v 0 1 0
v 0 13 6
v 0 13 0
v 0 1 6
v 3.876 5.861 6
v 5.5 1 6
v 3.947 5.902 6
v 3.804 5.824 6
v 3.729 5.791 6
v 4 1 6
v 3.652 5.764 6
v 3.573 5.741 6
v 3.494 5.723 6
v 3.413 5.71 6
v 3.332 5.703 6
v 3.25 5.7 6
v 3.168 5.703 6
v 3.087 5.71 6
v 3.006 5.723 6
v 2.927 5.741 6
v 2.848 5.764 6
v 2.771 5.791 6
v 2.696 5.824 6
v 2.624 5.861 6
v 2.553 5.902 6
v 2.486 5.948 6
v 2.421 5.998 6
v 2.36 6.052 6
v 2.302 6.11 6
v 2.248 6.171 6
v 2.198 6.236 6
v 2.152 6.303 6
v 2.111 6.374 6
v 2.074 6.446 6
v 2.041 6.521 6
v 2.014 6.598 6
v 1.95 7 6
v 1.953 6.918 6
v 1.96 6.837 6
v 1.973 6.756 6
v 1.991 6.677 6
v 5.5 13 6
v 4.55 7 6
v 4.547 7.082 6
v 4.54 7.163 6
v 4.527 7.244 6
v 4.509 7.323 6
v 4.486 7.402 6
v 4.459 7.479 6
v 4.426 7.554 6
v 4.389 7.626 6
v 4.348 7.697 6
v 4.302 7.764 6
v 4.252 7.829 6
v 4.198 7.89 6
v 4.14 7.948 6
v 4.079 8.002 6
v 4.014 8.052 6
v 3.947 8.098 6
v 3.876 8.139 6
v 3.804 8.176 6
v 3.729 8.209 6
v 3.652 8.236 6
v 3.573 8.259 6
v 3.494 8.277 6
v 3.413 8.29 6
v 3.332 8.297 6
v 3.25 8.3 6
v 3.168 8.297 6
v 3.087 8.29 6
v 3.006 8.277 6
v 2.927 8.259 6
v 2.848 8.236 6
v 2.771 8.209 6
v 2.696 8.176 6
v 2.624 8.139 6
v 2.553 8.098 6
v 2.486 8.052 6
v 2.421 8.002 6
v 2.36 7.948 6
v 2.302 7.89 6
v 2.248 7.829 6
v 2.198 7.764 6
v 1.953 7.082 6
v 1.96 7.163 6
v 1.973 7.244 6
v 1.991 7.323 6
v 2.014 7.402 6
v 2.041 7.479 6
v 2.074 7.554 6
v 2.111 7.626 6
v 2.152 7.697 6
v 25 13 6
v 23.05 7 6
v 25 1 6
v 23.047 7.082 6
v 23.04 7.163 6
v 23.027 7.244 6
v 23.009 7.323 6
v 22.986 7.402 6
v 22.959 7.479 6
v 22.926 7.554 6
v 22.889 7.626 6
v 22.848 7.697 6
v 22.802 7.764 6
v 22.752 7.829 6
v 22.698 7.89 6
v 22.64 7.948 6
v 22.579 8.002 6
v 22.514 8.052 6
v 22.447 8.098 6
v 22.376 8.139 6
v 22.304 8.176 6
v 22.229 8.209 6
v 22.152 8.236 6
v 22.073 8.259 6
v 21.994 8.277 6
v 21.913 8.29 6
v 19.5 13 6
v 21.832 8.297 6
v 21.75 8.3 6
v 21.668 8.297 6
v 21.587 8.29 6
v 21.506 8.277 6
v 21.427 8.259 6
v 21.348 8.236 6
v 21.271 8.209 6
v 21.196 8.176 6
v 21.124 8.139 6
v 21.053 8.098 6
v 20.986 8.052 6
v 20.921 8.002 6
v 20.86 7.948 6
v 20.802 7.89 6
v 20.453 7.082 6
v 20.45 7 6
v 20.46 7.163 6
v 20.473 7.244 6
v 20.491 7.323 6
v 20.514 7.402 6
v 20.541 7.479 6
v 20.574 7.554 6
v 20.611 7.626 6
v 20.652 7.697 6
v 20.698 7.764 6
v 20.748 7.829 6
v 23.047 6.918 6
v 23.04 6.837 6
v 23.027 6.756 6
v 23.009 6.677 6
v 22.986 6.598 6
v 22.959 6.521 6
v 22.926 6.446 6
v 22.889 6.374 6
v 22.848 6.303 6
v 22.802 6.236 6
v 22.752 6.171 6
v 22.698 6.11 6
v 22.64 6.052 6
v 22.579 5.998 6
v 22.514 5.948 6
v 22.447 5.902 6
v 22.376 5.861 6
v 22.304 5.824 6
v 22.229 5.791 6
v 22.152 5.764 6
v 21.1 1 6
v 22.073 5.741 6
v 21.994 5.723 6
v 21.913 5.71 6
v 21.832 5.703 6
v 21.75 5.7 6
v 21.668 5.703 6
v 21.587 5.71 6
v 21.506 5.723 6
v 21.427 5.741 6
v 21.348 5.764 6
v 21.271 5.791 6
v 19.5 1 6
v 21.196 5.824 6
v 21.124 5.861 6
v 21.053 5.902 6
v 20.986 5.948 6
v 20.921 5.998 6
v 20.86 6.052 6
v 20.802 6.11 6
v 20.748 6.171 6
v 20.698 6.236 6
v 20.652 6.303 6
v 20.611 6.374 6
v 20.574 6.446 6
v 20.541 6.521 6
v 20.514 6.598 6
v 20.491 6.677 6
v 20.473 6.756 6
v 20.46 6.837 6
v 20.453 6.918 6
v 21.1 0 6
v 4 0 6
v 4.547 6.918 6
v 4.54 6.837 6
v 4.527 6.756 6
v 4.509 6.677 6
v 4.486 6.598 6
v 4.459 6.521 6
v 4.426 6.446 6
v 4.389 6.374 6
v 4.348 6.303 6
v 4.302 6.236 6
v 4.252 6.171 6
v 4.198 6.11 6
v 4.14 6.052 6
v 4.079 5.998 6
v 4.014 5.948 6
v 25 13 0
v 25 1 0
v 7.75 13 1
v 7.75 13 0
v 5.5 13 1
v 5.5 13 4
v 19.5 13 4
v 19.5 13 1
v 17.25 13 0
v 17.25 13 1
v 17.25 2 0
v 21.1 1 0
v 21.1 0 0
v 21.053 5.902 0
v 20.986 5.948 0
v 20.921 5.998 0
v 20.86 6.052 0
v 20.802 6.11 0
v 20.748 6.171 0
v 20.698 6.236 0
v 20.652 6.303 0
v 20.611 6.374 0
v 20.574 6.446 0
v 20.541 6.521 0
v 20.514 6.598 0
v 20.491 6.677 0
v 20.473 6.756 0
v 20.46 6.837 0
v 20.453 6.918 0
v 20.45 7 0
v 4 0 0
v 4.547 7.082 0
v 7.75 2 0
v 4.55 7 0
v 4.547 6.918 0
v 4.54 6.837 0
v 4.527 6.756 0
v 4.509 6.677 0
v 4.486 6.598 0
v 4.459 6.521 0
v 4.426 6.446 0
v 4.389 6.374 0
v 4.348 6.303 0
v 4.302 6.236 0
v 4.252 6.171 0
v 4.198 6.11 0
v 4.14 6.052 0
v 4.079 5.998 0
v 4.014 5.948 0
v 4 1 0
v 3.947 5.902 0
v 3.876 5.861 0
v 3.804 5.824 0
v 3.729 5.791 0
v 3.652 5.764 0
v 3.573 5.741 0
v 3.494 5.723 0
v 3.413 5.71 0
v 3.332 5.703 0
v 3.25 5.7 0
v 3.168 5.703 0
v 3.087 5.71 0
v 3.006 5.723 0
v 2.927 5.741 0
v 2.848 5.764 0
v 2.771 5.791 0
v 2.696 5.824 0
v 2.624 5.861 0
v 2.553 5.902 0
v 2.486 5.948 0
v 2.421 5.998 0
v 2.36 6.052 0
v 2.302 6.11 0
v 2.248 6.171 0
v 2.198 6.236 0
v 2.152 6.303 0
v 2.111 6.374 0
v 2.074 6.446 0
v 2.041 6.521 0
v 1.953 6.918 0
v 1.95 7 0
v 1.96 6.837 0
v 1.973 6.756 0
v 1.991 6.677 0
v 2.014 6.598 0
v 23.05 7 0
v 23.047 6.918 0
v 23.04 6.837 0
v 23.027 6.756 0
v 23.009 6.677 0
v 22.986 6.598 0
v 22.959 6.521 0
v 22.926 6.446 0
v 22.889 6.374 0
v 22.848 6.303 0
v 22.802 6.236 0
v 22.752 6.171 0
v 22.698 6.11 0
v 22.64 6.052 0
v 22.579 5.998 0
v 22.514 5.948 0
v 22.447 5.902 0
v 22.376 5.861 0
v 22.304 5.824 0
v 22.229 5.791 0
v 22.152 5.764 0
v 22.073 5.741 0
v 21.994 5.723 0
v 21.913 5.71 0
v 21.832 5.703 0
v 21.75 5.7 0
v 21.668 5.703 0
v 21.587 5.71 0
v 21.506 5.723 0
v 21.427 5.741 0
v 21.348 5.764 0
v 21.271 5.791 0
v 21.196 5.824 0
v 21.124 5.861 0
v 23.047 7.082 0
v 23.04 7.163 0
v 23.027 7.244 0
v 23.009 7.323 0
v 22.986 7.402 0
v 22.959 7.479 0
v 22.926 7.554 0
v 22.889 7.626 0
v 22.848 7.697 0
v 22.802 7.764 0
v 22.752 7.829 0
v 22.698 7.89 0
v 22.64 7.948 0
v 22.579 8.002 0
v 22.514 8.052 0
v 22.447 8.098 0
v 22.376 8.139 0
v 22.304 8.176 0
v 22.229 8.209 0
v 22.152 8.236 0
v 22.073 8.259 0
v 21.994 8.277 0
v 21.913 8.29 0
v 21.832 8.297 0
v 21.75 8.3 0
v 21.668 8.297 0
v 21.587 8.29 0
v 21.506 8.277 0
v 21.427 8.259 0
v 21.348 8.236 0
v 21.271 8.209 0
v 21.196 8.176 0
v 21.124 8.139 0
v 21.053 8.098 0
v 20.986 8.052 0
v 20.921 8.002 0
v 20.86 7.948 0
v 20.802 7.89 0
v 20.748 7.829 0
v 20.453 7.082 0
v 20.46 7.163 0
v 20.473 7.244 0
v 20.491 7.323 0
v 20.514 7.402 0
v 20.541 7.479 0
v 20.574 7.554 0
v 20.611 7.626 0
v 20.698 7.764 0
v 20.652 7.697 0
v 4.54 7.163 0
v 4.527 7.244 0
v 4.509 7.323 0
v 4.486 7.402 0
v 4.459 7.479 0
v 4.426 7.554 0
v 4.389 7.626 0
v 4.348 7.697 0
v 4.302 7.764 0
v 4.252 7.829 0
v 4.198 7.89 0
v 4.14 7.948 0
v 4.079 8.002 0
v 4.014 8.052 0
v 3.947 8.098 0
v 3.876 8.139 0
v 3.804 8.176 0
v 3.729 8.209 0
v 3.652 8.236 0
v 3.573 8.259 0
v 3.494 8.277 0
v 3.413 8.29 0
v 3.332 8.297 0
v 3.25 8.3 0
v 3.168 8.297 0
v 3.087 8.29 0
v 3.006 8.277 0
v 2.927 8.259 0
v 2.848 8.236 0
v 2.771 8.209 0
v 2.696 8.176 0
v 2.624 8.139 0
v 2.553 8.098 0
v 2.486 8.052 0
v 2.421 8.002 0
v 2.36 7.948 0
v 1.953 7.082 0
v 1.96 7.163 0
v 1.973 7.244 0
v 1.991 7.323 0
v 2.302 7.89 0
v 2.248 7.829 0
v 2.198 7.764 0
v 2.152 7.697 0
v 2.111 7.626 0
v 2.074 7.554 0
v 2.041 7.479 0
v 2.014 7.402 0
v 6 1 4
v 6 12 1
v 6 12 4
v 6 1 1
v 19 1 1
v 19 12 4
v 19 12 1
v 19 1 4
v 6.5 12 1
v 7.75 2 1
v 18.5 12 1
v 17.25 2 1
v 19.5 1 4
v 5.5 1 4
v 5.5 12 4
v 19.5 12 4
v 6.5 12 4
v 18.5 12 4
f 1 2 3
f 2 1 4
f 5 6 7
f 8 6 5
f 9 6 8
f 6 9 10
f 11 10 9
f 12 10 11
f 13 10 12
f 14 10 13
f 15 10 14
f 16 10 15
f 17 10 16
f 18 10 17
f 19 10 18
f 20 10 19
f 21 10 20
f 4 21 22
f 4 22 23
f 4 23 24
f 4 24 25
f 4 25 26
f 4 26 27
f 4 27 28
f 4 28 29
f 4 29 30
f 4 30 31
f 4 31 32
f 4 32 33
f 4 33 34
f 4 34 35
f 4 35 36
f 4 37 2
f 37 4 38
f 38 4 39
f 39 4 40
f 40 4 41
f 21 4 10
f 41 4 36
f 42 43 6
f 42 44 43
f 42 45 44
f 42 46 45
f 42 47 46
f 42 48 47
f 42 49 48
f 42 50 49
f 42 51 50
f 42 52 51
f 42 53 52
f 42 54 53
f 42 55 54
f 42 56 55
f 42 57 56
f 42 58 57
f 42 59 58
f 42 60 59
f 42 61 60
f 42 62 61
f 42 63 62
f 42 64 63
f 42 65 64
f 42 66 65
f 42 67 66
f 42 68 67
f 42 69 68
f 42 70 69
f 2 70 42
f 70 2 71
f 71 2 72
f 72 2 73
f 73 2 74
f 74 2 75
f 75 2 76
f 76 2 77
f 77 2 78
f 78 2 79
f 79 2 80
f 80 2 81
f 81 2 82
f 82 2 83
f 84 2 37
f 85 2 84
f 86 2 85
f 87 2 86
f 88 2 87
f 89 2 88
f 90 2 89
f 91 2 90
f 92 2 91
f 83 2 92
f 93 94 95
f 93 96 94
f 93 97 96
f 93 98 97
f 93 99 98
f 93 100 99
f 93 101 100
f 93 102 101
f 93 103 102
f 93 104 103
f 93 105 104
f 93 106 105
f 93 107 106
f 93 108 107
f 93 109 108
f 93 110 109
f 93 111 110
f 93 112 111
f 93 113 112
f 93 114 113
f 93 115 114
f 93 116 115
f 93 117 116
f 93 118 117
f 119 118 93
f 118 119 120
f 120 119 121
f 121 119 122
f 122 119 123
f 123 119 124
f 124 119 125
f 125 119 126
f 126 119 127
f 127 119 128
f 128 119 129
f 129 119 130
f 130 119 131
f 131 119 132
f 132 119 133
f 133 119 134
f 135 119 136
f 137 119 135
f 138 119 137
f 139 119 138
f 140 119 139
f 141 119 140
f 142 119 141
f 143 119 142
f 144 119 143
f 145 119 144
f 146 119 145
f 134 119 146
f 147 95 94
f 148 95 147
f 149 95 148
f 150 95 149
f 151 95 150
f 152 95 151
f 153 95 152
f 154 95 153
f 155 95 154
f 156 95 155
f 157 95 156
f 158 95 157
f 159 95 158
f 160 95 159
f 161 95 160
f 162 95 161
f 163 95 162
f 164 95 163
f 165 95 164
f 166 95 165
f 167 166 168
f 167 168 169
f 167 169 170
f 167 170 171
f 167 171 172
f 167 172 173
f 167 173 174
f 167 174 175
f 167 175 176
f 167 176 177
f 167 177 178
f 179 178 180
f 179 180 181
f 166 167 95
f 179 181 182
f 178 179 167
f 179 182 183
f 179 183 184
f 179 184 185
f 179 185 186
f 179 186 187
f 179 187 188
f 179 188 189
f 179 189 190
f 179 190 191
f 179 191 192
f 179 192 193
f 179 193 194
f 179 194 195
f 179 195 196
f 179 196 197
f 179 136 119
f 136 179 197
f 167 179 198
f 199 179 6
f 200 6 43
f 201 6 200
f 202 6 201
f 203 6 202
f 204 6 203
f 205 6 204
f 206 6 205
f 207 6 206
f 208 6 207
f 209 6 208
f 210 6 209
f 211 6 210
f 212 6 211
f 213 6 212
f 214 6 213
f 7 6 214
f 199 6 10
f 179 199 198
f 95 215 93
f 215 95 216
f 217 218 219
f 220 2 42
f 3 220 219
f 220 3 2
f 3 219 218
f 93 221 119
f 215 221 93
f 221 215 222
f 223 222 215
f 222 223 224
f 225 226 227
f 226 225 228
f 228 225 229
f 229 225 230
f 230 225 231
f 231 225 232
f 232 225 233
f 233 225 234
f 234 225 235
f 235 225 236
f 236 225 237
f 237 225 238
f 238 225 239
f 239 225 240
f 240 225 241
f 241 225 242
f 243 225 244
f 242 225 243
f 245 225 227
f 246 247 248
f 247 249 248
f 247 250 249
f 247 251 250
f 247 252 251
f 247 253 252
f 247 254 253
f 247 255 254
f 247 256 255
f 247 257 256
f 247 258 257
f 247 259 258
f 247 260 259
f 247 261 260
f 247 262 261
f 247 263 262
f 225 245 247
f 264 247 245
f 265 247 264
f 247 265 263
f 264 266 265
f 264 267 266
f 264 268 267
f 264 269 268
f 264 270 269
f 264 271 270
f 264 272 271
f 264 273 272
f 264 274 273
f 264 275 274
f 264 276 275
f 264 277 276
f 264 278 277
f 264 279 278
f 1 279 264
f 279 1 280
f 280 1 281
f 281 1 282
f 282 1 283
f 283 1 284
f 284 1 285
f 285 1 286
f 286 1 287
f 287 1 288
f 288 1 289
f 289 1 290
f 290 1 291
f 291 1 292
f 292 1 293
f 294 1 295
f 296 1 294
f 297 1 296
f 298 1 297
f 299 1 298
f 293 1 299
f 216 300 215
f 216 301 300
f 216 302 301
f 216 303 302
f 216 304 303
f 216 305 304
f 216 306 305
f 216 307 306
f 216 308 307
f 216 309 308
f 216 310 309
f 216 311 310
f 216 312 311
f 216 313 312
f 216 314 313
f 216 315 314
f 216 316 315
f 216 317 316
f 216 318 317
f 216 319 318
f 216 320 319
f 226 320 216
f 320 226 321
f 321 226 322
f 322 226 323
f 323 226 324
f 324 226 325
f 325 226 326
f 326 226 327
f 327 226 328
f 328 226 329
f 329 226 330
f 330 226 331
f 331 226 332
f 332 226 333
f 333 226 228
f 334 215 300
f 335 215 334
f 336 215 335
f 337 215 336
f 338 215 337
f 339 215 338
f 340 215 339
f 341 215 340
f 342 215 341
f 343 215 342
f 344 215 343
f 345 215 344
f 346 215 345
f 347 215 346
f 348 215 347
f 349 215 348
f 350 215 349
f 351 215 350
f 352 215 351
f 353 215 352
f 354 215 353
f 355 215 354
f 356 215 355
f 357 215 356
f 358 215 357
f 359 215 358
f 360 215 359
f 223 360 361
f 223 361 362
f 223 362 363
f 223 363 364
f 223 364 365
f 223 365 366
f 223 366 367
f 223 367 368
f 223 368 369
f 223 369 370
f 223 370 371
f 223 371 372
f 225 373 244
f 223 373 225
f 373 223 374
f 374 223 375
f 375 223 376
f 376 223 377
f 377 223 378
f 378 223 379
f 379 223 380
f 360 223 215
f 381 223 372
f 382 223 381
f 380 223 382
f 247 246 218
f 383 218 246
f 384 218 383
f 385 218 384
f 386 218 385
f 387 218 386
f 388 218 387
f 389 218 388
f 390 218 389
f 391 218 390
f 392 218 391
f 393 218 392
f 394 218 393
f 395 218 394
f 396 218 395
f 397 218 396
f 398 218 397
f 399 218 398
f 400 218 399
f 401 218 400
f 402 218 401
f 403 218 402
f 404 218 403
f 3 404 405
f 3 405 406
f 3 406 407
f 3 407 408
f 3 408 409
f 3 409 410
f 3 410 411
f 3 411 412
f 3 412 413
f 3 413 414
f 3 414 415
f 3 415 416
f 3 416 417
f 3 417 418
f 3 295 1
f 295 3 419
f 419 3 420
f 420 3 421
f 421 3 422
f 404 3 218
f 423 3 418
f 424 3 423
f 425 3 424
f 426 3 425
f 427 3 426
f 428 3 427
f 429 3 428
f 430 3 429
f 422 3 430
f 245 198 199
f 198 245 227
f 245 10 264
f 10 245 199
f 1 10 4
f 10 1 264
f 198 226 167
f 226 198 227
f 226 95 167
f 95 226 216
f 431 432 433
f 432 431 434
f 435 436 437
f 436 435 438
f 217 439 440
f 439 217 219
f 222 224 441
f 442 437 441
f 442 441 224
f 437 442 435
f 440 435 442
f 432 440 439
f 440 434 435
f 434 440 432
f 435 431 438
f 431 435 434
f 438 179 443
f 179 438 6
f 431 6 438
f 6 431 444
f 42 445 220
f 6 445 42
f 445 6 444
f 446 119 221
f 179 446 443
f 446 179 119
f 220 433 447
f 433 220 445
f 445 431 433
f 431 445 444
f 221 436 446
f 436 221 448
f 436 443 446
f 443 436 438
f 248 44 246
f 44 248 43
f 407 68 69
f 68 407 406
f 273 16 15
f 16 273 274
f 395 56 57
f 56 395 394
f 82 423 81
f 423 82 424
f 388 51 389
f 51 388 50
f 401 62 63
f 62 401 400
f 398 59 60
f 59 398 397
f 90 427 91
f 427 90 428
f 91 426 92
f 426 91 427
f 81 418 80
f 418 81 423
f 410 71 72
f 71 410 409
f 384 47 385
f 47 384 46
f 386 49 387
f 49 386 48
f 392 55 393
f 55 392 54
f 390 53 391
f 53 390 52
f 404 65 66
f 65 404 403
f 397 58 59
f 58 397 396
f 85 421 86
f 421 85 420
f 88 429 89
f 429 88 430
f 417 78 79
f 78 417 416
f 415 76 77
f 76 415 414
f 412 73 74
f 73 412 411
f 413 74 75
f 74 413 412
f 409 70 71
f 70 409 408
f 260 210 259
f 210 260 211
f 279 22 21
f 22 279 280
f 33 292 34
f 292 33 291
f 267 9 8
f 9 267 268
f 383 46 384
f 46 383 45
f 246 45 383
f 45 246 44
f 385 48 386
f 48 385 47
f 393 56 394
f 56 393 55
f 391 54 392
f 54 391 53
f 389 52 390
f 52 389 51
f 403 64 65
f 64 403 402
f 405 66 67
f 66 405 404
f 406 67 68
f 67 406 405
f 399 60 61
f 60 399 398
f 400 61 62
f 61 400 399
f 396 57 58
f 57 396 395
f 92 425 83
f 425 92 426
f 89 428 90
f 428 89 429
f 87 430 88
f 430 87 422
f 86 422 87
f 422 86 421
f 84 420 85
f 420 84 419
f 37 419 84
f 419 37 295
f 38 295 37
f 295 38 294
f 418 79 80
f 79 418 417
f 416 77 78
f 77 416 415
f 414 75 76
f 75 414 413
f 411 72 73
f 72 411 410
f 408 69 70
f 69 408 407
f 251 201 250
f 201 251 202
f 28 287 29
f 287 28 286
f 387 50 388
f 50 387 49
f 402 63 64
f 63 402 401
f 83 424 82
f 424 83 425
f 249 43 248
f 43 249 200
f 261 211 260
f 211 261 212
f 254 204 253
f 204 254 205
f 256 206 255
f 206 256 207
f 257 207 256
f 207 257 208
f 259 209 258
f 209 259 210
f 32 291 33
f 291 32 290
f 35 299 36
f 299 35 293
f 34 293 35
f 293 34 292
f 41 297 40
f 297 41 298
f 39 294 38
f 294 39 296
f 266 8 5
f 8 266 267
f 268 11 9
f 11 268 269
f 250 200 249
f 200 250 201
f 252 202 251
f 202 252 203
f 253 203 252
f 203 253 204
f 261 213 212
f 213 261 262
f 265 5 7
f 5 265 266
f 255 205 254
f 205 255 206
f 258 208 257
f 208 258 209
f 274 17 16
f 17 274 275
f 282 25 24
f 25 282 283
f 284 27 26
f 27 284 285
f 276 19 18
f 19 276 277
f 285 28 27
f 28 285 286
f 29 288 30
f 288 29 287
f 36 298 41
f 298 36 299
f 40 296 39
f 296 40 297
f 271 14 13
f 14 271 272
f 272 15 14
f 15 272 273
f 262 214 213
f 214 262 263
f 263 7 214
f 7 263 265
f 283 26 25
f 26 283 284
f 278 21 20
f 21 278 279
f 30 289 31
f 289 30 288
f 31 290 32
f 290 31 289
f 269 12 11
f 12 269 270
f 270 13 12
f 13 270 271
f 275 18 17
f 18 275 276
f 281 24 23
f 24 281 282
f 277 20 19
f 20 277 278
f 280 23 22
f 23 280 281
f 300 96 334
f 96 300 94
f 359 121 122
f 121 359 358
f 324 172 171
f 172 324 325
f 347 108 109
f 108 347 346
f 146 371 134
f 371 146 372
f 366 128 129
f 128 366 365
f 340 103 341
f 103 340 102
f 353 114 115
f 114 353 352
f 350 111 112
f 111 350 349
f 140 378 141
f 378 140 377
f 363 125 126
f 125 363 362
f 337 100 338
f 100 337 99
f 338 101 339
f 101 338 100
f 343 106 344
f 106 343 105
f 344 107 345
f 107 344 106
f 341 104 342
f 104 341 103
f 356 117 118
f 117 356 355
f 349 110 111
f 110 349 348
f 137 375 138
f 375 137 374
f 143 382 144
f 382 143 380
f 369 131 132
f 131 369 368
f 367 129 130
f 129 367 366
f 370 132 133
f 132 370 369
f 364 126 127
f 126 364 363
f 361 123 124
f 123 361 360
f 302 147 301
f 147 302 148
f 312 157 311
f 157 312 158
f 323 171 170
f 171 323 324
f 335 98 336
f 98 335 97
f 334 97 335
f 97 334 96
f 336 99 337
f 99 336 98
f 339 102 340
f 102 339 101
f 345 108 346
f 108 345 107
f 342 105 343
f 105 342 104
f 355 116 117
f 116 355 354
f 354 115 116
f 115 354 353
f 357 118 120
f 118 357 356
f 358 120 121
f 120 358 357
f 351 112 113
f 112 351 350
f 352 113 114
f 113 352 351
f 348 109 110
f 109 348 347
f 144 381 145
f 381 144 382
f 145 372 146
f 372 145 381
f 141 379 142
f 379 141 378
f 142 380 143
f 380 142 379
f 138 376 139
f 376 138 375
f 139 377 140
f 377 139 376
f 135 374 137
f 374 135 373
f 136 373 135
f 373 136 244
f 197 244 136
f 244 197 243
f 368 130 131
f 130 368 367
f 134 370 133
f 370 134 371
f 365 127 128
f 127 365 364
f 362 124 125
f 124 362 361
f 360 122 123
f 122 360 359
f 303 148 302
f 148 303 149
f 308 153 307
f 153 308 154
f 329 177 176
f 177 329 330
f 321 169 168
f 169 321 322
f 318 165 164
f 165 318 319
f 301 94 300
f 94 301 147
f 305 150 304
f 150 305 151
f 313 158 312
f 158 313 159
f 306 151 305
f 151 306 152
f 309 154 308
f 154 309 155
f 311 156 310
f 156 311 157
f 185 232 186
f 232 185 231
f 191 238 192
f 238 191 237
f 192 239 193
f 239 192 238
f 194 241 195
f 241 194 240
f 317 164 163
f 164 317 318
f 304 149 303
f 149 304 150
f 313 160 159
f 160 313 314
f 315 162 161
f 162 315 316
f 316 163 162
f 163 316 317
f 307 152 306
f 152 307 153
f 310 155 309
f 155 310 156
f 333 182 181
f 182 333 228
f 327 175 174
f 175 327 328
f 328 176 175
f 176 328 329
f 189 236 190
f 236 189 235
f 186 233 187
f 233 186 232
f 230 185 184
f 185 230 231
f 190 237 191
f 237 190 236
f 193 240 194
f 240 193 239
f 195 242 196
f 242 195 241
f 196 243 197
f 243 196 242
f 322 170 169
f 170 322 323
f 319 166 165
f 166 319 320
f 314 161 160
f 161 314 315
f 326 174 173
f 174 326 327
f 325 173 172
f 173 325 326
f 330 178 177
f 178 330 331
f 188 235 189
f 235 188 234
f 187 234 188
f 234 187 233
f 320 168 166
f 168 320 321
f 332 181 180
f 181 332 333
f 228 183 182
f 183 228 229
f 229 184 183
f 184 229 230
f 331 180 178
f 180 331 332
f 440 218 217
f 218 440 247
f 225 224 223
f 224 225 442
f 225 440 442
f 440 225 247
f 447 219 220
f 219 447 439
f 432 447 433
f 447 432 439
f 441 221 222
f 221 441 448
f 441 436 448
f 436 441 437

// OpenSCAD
$fn = 100;
fuzz = 0.1;

module prism(l, w, h){
  polyhedron(
    points=[[0,0,0], [l,0,0], [l,w,0], [0,w,0], [0,w,h], [l,w,h]],
    faces=[[0,1,2,3],[5,4,3,2],[0,4,5,1],[0,3,4],[5,2,1]]
  );
   
 
}
   
module screw_hole(diameter, xoffs)
{
    // screw hole
    translate([xoffs, 7, -1])
    {
        cylinder(8, d = diameter);
    }
}


module base_cutout(width, slotWidth, slotHeight)
{
    translate([(width-slotWidth) / 2, 2, -fuzz]) {
    cube([slotWidth, 11 + fuzz, slotHeight + (fuzz*2)]);
  }

/*    
        translate([(25-9.5) / 2, 4, 0])
        {
            cube([9.5, 6, 0.5]);
        }
*/    
}

module build_clip(width, height) {
  voidWidth = 13;
  holeDiameter = 2.6;
  slotHeight = 1;
  slotWidth = 9.5;

  difference() {
    
    cube([width, 13, height]);
    {
      // outer corner cutouts
      translate([-fuzz, -fuzz, -fuzz]) {
        cube([4 + fuzz, 1 + fuzz, 6 + (fuzz * 2)]);
      }
      translate([(width + fuzz) - 4, -fuzz, -fuzz]) {
        cube([4 + fuzz, 1 + fuzz, 6 + (fuzz * 2)]);
      }
        
      // main centre cutout lower
      translate([(width - voidWidth) / 2, 1, slotHeight]){
        cube([voidWidth, 12 + fuzz, 5.5]);
      }

      // make room for the hooks and cut out the additional
      // bit of the lower void
      translate([(width - voidWidth - 1) / 2, 12.5, slotHeight]){
        cube([voidWidth + 1, 12 + fuzz, 5.5]);
      }
      
      // main centre cutout upper
      translate([(width - (voidWidth  + 1)) / 2, 1, 4]){
        cube([voidWidth + 1, 12 + fuzz, 5.5]);
      }
        
      // screw hole 1
      screw_hole(holeDiameter, 3.25);
      // screw hole 2
      screw_hole(holeDiameter, width - 3.25);
        
      base_cutout(width, slotWidth, slotHeight);
    }
  }
  
  // special magic for the hooks, this is rubbish, but works
  translate([5.5, 13, 1])
  {
    rotate([0, 0, 180]){
      rotate([0, -90, 0]) {
        prism(3,1,1);
      }
    }
  }

  translate([18.5, 12, 1])
  {
    rotate([0, 0, 180]){
      rotate([90, -90, 0]) {
        prism(3,1,1);
      }
    }
  }
}

build_clip(25, 6);
// measure hole to hole, this is wrong atm
/*
translate([2.75, 6.5, 0])
{
    cube([18.5, 1, 1]);
}
*/
